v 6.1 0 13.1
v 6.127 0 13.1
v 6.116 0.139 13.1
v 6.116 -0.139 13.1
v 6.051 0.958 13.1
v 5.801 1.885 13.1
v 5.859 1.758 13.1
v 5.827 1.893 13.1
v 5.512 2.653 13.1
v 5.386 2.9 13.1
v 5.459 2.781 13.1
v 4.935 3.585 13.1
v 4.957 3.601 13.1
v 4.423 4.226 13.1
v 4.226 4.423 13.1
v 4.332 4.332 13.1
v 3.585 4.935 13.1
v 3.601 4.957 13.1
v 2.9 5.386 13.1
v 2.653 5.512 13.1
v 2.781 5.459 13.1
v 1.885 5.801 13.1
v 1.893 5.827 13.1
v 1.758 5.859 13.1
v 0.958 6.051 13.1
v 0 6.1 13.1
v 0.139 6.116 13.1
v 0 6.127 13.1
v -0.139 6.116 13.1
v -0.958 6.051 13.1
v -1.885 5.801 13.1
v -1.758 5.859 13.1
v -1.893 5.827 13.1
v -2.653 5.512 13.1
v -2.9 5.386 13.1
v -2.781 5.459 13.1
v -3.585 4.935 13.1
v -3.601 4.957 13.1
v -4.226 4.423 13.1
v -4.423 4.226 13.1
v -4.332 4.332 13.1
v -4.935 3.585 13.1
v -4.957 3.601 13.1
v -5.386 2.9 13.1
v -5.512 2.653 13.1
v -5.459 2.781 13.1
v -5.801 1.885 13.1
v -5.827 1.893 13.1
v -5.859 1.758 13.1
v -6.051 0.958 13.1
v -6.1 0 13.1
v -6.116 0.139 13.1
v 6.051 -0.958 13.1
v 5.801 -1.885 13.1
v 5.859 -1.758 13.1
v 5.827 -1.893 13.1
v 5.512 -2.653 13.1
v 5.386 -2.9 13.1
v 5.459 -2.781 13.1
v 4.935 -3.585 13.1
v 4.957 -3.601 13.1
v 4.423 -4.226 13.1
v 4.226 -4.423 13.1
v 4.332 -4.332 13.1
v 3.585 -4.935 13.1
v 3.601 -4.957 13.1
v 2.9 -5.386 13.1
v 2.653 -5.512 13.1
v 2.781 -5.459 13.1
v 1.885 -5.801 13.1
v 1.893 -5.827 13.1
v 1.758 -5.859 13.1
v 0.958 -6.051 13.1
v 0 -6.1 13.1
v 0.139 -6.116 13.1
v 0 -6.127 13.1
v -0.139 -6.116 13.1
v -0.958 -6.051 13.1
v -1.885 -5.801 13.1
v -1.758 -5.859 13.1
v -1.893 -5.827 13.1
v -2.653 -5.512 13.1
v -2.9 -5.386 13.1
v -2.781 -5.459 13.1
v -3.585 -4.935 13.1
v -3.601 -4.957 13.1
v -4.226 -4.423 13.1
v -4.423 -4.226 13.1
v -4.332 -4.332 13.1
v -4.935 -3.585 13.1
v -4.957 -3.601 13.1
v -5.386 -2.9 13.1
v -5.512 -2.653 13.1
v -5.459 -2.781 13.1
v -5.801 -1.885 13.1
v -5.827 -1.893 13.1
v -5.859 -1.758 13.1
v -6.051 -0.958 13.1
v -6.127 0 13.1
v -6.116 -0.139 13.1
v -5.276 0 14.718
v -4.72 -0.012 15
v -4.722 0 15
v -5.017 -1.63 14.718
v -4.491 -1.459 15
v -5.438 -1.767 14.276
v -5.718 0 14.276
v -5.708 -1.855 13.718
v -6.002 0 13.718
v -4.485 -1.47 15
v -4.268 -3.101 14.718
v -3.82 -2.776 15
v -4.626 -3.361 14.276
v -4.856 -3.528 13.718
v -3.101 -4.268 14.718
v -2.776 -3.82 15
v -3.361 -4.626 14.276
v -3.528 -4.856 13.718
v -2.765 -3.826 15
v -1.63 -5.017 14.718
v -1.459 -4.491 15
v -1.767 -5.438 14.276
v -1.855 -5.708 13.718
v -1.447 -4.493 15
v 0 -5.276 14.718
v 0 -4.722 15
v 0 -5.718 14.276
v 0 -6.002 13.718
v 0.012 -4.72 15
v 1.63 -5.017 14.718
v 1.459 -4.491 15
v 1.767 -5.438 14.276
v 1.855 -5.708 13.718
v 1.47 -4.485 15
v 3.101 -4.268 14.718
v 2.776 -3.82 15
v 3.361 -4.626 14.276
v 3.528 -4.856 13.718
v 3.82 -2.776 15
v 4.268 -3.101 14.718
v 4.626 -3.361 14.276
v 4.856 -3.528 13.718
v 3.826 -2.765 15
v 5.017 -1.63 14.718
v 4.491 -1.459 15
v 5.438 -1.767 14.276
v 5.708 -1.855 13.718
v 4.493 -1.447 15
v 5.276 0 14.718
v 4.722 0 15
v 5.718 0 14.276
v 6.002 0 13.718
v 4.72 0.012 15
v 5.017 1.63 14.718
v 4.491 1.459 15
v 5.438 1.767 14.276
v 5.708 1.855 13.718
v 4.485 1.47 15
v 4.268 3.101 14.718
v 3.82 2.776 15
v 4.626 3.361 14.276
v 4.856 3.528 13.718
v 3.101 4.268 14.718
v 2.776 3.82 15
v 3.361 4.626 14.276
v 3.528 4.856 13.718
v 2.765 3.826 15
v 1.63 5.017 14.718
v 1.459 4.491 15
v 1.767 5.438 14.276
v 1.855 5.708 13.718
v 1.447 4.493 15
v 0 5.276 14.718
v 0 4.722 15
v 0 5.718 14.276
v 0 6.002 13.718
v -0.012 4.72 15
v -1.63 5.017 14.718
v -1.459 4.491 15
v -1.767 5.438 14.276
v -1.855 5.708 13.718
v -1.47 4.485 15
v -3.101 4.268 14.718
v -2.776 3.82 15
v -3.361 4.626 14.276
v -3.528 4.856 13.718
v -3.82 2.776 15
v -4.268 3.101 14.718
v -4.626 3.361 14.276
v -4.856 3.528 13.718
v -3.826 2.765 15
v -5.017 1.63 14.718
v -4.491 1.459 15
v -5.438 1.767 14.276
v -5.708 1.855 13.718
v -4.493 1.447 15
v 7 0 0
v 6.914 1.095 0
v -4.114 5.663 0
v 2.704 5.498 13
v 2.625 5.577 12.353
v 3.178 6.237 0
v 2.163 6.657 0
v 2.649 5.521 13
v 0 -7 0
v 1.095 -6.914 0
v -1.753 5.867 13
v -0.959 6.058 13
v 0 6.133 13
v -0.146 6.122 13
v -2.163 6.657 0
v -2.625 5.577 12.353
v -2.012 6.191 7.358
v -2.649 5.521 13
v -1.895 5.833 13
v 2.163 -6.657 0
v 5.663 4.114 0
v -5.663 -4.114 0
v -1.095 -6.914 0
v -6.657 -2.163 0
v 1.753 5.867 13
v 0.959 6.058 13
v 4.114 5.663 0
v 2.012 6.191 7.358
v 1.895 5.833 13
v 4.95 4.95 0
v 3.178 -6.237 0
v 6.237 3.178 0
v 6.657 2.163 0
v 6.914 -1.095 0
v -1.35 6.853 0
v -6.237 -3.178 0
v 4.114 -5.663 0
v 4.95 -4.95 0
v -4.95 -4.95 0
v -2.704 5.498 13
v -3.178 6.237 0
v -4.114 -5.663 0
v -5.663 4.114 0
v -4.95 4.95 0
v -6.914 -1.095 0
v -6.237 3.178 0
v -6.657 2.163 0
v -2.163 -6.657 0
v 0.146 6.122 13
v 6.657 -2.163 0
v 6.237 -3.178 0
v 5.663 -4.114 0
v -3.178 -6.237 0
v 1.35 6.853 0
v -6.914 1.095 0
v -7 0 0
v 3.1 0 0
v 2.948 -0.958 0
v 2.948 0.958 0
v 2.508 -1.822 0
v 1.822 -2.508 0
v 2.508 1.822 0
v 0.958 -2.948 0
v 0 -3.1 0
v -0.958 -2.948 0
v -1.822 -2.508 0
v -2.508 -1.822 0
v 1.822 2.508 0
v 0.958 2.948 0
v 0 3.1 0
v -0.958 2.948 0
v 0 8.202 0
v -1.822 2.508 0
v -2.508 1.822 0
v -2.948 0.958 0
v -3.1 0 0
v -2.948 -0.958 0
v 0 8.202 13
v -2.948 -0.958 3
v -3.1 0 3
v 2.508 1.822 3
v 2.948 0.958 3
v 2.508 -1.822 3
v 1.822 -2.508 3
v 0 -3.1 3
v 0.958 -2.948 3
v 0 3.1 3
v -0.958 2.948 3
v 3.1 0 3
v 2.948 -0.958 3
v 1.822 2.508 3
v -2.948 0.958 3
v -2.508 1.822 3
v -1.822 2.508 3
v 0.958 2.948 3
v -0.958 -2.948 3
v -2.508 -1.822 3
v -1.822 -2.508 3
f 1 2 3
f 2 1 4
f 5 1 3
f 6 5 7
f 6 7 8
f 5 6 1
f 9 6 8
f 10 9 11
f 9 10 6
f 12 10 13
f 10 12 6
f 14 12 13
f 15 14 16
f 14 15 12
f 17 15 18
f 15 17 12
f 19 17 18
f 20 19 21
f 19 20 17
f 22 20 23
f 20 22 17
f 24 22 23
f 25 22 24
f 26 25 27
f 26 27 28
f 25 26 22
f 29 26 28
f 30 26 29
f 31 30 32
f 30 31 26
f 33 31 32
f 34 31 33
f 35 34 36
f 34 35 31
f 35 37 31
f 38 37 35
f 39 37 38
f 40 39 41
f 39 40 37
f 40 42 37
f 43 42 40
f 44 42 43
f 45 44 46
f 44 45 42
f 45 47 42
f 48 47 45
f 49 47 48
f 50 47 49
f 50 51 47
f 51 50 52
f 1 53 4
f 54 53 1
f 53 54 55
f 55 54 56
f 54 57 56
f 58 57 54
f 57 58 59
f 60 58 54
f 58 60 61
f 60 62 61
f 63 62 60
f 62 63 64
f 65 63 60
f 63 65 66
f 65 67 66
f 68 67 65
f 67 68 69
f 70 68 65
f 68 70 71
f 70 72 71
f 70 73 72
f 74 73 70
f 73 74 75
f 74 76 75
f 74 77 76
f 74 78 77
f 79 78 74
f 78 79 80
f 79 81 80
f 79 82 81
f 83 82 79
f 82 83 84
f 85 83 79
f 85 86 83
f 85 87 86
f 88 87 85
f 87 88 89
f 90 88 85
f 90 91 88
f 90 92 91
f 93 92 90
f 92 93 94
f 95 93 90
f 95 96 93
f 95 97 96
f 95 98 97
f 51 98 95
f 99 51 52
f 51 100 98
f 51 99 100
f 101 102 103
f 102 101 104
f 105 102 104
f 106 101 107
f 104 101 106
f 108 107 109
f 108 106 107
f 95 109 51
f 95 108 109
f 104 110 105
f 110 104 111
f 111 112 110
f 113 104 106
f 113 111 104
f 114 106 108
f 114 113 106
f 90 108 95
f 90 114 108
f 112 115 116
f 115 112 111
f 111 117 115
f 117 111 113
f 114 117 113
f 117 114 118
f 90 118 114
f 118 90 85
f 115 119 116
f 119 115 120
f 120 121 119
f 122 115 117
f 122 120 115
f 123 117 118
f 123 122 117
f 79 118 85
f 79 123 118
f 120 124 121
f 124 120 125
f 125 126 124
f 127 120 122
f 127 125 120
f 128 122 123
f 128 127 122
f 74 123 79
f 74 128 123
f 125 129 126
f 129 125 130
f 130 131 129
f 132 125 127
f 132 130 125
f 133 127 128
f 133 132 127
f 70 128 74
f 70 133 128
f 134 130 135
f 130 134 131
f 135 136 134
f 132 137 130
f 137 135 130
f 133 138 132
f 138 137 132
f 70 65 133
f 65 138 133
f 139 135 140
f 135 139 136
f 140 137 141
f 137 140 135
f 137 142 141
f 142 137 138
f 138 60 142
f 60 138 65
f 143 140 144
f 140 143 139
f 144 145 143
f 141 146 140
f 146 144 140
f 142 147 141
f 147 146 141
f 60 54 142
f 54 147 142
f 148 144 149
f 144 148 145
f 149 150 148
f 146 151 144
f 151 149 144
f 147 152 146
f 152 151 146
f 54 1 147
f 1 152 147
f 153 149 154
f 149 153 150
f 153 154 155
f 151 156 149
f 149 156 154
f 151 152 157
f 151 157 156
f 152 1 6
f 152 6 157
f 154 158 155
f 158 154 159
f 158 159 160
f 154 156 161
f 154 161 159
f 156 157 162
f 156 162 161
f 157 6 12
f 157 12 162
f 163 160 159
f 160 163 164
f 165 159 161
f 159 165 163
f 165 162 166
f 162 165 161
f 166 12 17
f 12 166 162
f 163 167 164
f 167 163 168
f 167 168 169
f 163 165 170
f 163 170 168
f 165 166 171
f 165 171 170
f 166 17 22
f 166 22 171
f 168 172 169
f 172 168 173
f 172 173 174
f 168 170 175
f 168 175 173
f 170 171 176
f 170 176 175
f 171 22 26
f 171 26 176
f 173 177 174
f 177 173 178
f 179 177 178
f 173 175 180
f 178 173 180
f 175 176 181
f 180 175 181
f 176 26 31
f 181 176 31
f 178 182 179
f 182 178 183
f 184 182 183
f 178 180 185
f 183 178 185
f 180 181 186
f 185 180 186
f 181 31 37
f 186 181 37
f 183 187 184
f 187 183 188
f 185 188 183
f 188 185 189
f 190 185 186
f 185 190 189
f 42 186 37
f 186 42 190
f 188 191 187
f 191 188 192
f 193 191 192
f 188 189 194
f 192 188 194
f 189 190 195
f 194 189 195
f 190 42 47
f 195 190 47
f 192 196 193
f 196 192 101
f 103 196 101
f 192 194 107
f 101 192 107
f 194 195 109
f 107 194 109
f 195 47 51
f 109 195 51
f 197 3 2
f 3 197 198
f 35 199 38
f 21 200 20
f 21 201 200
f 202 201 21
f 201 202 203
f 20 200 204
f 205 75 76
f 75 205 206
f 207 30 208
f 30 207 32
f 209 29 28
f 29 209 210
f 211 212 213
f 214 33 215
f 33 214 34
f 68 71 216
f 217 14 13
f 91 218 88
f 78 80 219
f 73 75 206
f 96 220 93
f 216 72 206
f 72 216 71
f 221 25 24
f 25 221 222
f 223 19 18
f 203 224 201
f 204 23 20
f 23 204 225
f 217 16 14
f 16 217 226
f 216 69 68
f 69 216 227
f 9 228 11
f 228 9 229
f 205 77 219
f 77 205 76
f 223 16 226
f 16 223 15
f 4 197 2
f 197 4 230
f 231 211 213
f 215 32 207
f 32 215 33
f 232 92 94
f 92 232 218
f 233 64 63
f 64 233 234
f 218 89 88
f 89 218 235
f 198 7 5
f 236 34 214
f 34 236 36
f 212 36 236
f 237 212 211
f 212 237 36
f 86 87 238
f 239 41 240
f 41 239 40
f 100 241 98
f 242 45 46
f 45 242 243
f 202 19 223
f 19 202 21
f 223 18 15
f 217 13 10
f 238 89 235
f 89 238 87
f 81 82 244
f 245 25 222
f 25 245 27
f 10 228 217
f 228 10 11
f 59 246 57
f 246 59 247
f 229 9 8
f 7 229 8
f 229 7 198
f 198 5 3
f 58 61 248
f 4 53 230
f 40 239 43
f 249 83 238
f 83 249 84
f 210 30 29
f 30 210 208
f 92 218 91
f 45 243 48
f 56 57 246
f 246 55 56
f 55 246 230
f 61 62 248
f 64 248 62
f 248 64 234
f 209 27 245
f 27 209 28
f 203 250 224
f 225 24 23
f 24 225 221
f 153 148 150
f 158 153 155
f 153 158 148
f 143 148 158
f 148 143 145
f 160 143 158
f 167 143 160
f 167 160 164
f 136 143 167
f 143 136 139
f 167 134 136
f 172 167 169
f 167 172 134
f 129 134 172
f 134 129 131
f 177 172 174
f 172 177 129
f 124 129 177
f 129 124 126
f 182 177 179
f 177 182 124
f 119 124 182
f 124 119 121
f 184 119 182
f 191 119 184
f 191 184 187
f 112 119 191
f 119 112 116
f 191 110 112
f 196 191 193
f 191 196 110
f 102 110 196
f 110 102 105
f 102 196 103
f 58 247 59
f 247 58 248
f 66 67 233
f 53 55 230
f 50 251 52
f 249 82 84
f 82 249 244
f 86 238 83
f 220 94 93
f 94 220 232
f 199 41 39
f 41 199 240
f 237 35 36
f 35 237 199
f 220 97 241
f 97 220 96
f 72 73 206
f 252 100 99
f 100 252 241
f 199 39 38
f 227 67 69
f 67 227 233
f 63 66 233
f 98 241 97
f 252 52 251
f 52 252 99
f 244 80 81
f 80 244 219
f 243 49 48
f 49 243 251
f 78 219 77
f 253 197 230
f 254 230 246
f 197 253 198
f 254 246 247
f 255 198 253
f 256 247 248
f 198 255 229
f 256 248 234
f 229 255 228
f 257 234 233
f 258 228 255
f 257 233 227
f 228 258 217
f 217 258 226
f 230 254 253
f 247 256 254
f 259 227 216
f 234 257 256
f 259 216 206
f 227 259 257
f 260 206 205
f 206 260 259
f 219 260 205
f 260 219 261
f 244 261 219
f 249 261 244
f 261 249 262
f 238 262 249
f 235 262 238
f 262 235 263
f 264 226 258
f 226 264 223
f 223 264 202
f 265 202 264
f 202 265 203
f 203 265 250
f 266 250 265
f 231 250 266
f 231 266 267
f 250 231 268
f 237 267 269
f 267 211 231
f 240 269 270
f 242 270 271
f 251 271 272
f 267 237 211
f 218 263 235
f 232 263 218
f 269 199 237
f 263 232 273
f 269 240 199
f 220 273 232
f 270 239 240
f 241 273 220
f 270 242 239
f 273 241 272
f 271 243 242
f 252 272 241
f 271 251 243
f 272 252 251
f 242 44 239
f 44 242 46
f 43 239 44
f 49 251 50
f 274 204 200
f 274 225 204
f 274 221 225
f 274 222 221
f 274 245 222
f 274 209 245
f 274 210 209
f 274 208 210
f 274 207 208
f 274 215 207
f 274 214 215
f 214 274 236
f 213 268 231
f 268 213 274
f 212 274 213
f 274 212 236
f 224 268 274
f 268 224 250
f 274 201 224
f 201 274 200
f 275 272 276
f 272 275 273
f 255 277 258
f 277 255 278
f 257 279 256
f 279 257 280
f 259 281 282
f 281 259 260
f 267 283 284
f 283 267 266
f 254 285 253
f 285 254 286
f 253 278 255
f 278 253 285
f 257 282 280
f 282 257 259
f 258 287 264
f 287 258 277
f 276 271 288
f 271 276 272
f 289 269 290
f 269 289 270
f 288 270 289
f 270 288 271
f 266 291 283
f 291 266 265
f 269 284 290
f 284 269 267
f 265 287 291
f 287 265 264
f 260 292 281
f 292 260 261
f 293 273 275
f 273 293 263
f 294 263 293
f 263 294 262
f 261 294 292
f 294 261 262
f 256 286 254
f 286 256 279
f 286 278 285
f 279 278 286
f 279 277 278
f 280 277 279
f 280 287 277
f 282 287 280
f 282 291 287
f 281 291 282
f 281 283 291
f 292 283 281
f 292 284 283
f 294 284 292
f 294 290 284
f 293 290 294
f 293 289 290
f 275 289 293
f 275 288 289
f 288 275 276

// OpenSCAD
/*

Parametric Potentiometer Knob Generator
version 1.1
2012 Steve Cooley
http://sc-fa.com
http://beatseqr.com
http://hapticsynapses.com

parametric potentiometer knob generator by steve cooley is licensed under a Creative Commons Attribution-NonCommercial-ShareAlike 3.0 Unported License. Based on a work at sc-fa.com. Permissions beyond the scope of this license may be available at http://sc-fa.com/blog/contact.

view terms of the license here:
http://creativecommons.org/licenses/by-nc-sa/3.0/


version history
---------------
1.1 2012-04-12 fixed the arrow indicator code to be more robust and easier to adjust parameters for.
1.0 2012-03-?? initial release.


*/


//
//
// Physical attributes, basic
//
//

knob_radius_top = 6;
knob_radius_bottom = 7;
knob_height = 15;
knob_smoothness = 40;

shaft_radius = 3.1;
shaft_height = 4;
shaft_smoothness = 20;

shaft_is_flatted = false;
flat_size_adjustment = -0.0;
// you won't need to mess with this. less than 5 makes it disappear. you can, however,
// set the adjustment to be a negative decimal if you need a flat but not as big as the default.
// go positive if you need a bigger flat
flat_size = 5 + flat_size_adjustment;

// some potentiometers need to have their knobs affixed with a set screw.
set_screw = false;
set_screw_radius = 1.5;
set_screw_depth = 9;
set_screw_height = 4;
quality_of_set_screw = 20;

//
//
// Decorations
//
//

//
// top edge smoothing
// thanks to http://www.iheartrobotics.com/ for the articles!
//

smoothing = true;
smoothing_radius = 2;				// tweak on this one, how much smoothing to apply
smooth = 20;						// tweak on this one, Number of facets of rounding cylinder

ct = -0.1; 							// circle translate? not sure.
circle_radius = knob_radius_top;  	// just match the top edge radius
circle_height = 1; 					// actually.. I don't know what this does.
pad = 0.2;							// Padding to maintain manifold


//
// directional indicators
//

// this is a corner edge of a cube sticking out of the cylinder at the bottom
// you can use it instead of the arrow shaped cutout in the top if you like. Or both.

pointy_external_indicator = true;
pointy_external_indicator_height = 13;
pointy_external_indicator_pokey_outey_ness = 0.0; //
pokey_outey_value = pointy_external_indicator_pokey_outey_ness - 1 - pad;
pokey_outey = [pokey_outey_value, pokey_outey_value,0];

// there's an arrow shaped hole you can have. There aren't a lot of controls for this.
// please feel free to improve on this script here.

arrow_indicator = false;
arrow_indicator_scale = 0.4;
arrow_indicator_translate = [0,1,16];
arrow_scale_head = 2;
arrow_scale_shaft = 1.5;

//
// indentations
//

// for spherical indentations, set the quantity, quality, size, and adjust the placement
indentations_sphere = false;
sphere_number_of_indentations = 12;
sphere_quality_of_indentations = 4;
size_of_sphere_indentations = 4;
// the first number in this set moves the spheres in or out. smaller is closer to the middle
// the second number in this set moves the spheres left or right
// the third number in this set moves the speheres up or down
translation_of_sphere_indentations = [10,0,15];
// in case you are using an odd number of indentations, you way want to adjust the starting angle
// so that they align to the front or set screw locations.
sphere_starting_rotation = 90;

// for cylinder indentations, set quantity, quality, radius, height, and placement
indentations_cylinder = false;
cylinder_number_of_indentations = 10;
cylinder_quality_of_indentations = 50;
radius_of_cylinder_indentations_top = 3;
radius_of_cylinder_indentations_bottom = 5;
height_of_cylinder_indentations = 12;
translation_of_cylinder_indentations = [0,8,-8];
cylinder_starting_rotation = -33.3;

// these are some setup variables... you probably won't need to mess with them.
negative_knob_radius = knob_radius_bottom*-1;


// this is the main module. It calls the submodules.
make_the_knob();

module make_the_knob()
{
	difference()
		{
		difference()
			{

			difference()
				{
				difference()
					{

					union()
						{

						difference()
							{
							// main cylinder
							cylinder(r1=knob_radius_bottom,r2=knob_radius_top,h=knob_height, $fn=knob_smoothness);

							smoothing();

							}

						external_direction_indicator();
						}

					shaft_hole();
					}

				set_screw_hole();
				}

			arrow_indicator();
			indentations();
		}
	}

}

module smoothing() {

// smoothing the top
				if(smoothing == true)
					{
						translate([0,0,knob_height])
						rotate([180,0,0])
						difference() {
							rotate_extrude(convexity=10,  $fn = smooth)
							translate([circle_radius-ct-smoothing_radius+pad,ct-pad,0])
							square(smoothing_radius+pad,smoothing_radius+pad);

							rotate_extrude(convexity=10,  $fn = smooth)
							translate([circle_radius-ct-smoothing_radius,ct+smoothing_radius,0])
							circle(r=smoothing_radius,$fn=smooth);
							}
					}
}

module external_direction_indicator() {

				if(pointy_external_indicator == true)
						{


						// outer pointy indicator
						rotate([0,0,45])
						translate(pokey_outey)
						// cube size of 8 minimum to point out
						cube(size=[knob_radius_bottom,knob_radius_bottom,pointy_external_indicator_height],center=false);
						}

}

module shaft_hole() {
				// shaft hole
				difference()
					{

					// round shaft hole
					translate([ 0, 0, -1 ])
					cylinder(r=shaft_radius,h=shaft_height, $fn=shaft_smoothness);

					if(shaft_is_flatted == true)
						{
						// D shaft shape for shaft cutout
						rotate( [0,0,90])
						translate([-7.5,-5,0])
						cube(size=[flat_size,10,13],center=false);
						}
					}
}


module set_screw_hole() {

			if(set_screw == true)
				{
				// set screw hole
				rotate ([90,0,0])
				translate([ 0, set_screw_height, 1 ])
				cylinder(r=set_screw_radius,h=set_screw_depth, $fn=quality_of_set_screw);
				}
}

module arrow_indicator() {
		if(arrow_indicator == true)
			{
			translate(arrow_indicator_translate)
			// begin arrow top cutout
			// translate([(knob_radius/2),knob_height,knob_height])
			rotate([90,0,45])
			scale([arrow_indicator_scale*.3,arrow_indicator_scale*.3,arrow_indicator_scale*.3])
			union()
				{
				rotate([90,45,0])
				scale([arrow_scale_head,arrow_scale_head,1])
				cylinder(r=8, h=10, $fn=3, center=true);
				rotate([90,45,0])
				translate([-10,0,0])
				scale([arrow_scale_shaft,arrow_scale_shaft,1])
				cube(size=[15,10,10],center=true);
				}
			}
}

module indentations() {

if(indentations_sphere == true)
			{
			for (z = [0:sphere_number_of_indentations])
				{
				rotate([0,0,sphere_starting_rotation+((360/sphere_number_of_indentations)*z)])
				translate(translation_of_sphere_indentations)
				sphere(size_of_sphere_indentations, $fn=sphere_quality_of_indentations);
				}
			}
if(indentations_cylinder == true)
			{
			for (z = [0:cylinder_number_of_indentations])
				{
				rotate([0,0,cylinder_starting_rotation+((360/cylinder_number_of_indentations)*z)])

				translate([negative_knob_radius,0,knob_height])
				translate(translation_of_cylinder_indentations)
				cylinder(r1=radius_of_cylinder_indentations_bottom, r2=radius_of_cylinder_indentations_top, h=height_of_cylinder_indentations, center=true, $fn=cylinder_quality_of_indentations);
				}
			}
		}
